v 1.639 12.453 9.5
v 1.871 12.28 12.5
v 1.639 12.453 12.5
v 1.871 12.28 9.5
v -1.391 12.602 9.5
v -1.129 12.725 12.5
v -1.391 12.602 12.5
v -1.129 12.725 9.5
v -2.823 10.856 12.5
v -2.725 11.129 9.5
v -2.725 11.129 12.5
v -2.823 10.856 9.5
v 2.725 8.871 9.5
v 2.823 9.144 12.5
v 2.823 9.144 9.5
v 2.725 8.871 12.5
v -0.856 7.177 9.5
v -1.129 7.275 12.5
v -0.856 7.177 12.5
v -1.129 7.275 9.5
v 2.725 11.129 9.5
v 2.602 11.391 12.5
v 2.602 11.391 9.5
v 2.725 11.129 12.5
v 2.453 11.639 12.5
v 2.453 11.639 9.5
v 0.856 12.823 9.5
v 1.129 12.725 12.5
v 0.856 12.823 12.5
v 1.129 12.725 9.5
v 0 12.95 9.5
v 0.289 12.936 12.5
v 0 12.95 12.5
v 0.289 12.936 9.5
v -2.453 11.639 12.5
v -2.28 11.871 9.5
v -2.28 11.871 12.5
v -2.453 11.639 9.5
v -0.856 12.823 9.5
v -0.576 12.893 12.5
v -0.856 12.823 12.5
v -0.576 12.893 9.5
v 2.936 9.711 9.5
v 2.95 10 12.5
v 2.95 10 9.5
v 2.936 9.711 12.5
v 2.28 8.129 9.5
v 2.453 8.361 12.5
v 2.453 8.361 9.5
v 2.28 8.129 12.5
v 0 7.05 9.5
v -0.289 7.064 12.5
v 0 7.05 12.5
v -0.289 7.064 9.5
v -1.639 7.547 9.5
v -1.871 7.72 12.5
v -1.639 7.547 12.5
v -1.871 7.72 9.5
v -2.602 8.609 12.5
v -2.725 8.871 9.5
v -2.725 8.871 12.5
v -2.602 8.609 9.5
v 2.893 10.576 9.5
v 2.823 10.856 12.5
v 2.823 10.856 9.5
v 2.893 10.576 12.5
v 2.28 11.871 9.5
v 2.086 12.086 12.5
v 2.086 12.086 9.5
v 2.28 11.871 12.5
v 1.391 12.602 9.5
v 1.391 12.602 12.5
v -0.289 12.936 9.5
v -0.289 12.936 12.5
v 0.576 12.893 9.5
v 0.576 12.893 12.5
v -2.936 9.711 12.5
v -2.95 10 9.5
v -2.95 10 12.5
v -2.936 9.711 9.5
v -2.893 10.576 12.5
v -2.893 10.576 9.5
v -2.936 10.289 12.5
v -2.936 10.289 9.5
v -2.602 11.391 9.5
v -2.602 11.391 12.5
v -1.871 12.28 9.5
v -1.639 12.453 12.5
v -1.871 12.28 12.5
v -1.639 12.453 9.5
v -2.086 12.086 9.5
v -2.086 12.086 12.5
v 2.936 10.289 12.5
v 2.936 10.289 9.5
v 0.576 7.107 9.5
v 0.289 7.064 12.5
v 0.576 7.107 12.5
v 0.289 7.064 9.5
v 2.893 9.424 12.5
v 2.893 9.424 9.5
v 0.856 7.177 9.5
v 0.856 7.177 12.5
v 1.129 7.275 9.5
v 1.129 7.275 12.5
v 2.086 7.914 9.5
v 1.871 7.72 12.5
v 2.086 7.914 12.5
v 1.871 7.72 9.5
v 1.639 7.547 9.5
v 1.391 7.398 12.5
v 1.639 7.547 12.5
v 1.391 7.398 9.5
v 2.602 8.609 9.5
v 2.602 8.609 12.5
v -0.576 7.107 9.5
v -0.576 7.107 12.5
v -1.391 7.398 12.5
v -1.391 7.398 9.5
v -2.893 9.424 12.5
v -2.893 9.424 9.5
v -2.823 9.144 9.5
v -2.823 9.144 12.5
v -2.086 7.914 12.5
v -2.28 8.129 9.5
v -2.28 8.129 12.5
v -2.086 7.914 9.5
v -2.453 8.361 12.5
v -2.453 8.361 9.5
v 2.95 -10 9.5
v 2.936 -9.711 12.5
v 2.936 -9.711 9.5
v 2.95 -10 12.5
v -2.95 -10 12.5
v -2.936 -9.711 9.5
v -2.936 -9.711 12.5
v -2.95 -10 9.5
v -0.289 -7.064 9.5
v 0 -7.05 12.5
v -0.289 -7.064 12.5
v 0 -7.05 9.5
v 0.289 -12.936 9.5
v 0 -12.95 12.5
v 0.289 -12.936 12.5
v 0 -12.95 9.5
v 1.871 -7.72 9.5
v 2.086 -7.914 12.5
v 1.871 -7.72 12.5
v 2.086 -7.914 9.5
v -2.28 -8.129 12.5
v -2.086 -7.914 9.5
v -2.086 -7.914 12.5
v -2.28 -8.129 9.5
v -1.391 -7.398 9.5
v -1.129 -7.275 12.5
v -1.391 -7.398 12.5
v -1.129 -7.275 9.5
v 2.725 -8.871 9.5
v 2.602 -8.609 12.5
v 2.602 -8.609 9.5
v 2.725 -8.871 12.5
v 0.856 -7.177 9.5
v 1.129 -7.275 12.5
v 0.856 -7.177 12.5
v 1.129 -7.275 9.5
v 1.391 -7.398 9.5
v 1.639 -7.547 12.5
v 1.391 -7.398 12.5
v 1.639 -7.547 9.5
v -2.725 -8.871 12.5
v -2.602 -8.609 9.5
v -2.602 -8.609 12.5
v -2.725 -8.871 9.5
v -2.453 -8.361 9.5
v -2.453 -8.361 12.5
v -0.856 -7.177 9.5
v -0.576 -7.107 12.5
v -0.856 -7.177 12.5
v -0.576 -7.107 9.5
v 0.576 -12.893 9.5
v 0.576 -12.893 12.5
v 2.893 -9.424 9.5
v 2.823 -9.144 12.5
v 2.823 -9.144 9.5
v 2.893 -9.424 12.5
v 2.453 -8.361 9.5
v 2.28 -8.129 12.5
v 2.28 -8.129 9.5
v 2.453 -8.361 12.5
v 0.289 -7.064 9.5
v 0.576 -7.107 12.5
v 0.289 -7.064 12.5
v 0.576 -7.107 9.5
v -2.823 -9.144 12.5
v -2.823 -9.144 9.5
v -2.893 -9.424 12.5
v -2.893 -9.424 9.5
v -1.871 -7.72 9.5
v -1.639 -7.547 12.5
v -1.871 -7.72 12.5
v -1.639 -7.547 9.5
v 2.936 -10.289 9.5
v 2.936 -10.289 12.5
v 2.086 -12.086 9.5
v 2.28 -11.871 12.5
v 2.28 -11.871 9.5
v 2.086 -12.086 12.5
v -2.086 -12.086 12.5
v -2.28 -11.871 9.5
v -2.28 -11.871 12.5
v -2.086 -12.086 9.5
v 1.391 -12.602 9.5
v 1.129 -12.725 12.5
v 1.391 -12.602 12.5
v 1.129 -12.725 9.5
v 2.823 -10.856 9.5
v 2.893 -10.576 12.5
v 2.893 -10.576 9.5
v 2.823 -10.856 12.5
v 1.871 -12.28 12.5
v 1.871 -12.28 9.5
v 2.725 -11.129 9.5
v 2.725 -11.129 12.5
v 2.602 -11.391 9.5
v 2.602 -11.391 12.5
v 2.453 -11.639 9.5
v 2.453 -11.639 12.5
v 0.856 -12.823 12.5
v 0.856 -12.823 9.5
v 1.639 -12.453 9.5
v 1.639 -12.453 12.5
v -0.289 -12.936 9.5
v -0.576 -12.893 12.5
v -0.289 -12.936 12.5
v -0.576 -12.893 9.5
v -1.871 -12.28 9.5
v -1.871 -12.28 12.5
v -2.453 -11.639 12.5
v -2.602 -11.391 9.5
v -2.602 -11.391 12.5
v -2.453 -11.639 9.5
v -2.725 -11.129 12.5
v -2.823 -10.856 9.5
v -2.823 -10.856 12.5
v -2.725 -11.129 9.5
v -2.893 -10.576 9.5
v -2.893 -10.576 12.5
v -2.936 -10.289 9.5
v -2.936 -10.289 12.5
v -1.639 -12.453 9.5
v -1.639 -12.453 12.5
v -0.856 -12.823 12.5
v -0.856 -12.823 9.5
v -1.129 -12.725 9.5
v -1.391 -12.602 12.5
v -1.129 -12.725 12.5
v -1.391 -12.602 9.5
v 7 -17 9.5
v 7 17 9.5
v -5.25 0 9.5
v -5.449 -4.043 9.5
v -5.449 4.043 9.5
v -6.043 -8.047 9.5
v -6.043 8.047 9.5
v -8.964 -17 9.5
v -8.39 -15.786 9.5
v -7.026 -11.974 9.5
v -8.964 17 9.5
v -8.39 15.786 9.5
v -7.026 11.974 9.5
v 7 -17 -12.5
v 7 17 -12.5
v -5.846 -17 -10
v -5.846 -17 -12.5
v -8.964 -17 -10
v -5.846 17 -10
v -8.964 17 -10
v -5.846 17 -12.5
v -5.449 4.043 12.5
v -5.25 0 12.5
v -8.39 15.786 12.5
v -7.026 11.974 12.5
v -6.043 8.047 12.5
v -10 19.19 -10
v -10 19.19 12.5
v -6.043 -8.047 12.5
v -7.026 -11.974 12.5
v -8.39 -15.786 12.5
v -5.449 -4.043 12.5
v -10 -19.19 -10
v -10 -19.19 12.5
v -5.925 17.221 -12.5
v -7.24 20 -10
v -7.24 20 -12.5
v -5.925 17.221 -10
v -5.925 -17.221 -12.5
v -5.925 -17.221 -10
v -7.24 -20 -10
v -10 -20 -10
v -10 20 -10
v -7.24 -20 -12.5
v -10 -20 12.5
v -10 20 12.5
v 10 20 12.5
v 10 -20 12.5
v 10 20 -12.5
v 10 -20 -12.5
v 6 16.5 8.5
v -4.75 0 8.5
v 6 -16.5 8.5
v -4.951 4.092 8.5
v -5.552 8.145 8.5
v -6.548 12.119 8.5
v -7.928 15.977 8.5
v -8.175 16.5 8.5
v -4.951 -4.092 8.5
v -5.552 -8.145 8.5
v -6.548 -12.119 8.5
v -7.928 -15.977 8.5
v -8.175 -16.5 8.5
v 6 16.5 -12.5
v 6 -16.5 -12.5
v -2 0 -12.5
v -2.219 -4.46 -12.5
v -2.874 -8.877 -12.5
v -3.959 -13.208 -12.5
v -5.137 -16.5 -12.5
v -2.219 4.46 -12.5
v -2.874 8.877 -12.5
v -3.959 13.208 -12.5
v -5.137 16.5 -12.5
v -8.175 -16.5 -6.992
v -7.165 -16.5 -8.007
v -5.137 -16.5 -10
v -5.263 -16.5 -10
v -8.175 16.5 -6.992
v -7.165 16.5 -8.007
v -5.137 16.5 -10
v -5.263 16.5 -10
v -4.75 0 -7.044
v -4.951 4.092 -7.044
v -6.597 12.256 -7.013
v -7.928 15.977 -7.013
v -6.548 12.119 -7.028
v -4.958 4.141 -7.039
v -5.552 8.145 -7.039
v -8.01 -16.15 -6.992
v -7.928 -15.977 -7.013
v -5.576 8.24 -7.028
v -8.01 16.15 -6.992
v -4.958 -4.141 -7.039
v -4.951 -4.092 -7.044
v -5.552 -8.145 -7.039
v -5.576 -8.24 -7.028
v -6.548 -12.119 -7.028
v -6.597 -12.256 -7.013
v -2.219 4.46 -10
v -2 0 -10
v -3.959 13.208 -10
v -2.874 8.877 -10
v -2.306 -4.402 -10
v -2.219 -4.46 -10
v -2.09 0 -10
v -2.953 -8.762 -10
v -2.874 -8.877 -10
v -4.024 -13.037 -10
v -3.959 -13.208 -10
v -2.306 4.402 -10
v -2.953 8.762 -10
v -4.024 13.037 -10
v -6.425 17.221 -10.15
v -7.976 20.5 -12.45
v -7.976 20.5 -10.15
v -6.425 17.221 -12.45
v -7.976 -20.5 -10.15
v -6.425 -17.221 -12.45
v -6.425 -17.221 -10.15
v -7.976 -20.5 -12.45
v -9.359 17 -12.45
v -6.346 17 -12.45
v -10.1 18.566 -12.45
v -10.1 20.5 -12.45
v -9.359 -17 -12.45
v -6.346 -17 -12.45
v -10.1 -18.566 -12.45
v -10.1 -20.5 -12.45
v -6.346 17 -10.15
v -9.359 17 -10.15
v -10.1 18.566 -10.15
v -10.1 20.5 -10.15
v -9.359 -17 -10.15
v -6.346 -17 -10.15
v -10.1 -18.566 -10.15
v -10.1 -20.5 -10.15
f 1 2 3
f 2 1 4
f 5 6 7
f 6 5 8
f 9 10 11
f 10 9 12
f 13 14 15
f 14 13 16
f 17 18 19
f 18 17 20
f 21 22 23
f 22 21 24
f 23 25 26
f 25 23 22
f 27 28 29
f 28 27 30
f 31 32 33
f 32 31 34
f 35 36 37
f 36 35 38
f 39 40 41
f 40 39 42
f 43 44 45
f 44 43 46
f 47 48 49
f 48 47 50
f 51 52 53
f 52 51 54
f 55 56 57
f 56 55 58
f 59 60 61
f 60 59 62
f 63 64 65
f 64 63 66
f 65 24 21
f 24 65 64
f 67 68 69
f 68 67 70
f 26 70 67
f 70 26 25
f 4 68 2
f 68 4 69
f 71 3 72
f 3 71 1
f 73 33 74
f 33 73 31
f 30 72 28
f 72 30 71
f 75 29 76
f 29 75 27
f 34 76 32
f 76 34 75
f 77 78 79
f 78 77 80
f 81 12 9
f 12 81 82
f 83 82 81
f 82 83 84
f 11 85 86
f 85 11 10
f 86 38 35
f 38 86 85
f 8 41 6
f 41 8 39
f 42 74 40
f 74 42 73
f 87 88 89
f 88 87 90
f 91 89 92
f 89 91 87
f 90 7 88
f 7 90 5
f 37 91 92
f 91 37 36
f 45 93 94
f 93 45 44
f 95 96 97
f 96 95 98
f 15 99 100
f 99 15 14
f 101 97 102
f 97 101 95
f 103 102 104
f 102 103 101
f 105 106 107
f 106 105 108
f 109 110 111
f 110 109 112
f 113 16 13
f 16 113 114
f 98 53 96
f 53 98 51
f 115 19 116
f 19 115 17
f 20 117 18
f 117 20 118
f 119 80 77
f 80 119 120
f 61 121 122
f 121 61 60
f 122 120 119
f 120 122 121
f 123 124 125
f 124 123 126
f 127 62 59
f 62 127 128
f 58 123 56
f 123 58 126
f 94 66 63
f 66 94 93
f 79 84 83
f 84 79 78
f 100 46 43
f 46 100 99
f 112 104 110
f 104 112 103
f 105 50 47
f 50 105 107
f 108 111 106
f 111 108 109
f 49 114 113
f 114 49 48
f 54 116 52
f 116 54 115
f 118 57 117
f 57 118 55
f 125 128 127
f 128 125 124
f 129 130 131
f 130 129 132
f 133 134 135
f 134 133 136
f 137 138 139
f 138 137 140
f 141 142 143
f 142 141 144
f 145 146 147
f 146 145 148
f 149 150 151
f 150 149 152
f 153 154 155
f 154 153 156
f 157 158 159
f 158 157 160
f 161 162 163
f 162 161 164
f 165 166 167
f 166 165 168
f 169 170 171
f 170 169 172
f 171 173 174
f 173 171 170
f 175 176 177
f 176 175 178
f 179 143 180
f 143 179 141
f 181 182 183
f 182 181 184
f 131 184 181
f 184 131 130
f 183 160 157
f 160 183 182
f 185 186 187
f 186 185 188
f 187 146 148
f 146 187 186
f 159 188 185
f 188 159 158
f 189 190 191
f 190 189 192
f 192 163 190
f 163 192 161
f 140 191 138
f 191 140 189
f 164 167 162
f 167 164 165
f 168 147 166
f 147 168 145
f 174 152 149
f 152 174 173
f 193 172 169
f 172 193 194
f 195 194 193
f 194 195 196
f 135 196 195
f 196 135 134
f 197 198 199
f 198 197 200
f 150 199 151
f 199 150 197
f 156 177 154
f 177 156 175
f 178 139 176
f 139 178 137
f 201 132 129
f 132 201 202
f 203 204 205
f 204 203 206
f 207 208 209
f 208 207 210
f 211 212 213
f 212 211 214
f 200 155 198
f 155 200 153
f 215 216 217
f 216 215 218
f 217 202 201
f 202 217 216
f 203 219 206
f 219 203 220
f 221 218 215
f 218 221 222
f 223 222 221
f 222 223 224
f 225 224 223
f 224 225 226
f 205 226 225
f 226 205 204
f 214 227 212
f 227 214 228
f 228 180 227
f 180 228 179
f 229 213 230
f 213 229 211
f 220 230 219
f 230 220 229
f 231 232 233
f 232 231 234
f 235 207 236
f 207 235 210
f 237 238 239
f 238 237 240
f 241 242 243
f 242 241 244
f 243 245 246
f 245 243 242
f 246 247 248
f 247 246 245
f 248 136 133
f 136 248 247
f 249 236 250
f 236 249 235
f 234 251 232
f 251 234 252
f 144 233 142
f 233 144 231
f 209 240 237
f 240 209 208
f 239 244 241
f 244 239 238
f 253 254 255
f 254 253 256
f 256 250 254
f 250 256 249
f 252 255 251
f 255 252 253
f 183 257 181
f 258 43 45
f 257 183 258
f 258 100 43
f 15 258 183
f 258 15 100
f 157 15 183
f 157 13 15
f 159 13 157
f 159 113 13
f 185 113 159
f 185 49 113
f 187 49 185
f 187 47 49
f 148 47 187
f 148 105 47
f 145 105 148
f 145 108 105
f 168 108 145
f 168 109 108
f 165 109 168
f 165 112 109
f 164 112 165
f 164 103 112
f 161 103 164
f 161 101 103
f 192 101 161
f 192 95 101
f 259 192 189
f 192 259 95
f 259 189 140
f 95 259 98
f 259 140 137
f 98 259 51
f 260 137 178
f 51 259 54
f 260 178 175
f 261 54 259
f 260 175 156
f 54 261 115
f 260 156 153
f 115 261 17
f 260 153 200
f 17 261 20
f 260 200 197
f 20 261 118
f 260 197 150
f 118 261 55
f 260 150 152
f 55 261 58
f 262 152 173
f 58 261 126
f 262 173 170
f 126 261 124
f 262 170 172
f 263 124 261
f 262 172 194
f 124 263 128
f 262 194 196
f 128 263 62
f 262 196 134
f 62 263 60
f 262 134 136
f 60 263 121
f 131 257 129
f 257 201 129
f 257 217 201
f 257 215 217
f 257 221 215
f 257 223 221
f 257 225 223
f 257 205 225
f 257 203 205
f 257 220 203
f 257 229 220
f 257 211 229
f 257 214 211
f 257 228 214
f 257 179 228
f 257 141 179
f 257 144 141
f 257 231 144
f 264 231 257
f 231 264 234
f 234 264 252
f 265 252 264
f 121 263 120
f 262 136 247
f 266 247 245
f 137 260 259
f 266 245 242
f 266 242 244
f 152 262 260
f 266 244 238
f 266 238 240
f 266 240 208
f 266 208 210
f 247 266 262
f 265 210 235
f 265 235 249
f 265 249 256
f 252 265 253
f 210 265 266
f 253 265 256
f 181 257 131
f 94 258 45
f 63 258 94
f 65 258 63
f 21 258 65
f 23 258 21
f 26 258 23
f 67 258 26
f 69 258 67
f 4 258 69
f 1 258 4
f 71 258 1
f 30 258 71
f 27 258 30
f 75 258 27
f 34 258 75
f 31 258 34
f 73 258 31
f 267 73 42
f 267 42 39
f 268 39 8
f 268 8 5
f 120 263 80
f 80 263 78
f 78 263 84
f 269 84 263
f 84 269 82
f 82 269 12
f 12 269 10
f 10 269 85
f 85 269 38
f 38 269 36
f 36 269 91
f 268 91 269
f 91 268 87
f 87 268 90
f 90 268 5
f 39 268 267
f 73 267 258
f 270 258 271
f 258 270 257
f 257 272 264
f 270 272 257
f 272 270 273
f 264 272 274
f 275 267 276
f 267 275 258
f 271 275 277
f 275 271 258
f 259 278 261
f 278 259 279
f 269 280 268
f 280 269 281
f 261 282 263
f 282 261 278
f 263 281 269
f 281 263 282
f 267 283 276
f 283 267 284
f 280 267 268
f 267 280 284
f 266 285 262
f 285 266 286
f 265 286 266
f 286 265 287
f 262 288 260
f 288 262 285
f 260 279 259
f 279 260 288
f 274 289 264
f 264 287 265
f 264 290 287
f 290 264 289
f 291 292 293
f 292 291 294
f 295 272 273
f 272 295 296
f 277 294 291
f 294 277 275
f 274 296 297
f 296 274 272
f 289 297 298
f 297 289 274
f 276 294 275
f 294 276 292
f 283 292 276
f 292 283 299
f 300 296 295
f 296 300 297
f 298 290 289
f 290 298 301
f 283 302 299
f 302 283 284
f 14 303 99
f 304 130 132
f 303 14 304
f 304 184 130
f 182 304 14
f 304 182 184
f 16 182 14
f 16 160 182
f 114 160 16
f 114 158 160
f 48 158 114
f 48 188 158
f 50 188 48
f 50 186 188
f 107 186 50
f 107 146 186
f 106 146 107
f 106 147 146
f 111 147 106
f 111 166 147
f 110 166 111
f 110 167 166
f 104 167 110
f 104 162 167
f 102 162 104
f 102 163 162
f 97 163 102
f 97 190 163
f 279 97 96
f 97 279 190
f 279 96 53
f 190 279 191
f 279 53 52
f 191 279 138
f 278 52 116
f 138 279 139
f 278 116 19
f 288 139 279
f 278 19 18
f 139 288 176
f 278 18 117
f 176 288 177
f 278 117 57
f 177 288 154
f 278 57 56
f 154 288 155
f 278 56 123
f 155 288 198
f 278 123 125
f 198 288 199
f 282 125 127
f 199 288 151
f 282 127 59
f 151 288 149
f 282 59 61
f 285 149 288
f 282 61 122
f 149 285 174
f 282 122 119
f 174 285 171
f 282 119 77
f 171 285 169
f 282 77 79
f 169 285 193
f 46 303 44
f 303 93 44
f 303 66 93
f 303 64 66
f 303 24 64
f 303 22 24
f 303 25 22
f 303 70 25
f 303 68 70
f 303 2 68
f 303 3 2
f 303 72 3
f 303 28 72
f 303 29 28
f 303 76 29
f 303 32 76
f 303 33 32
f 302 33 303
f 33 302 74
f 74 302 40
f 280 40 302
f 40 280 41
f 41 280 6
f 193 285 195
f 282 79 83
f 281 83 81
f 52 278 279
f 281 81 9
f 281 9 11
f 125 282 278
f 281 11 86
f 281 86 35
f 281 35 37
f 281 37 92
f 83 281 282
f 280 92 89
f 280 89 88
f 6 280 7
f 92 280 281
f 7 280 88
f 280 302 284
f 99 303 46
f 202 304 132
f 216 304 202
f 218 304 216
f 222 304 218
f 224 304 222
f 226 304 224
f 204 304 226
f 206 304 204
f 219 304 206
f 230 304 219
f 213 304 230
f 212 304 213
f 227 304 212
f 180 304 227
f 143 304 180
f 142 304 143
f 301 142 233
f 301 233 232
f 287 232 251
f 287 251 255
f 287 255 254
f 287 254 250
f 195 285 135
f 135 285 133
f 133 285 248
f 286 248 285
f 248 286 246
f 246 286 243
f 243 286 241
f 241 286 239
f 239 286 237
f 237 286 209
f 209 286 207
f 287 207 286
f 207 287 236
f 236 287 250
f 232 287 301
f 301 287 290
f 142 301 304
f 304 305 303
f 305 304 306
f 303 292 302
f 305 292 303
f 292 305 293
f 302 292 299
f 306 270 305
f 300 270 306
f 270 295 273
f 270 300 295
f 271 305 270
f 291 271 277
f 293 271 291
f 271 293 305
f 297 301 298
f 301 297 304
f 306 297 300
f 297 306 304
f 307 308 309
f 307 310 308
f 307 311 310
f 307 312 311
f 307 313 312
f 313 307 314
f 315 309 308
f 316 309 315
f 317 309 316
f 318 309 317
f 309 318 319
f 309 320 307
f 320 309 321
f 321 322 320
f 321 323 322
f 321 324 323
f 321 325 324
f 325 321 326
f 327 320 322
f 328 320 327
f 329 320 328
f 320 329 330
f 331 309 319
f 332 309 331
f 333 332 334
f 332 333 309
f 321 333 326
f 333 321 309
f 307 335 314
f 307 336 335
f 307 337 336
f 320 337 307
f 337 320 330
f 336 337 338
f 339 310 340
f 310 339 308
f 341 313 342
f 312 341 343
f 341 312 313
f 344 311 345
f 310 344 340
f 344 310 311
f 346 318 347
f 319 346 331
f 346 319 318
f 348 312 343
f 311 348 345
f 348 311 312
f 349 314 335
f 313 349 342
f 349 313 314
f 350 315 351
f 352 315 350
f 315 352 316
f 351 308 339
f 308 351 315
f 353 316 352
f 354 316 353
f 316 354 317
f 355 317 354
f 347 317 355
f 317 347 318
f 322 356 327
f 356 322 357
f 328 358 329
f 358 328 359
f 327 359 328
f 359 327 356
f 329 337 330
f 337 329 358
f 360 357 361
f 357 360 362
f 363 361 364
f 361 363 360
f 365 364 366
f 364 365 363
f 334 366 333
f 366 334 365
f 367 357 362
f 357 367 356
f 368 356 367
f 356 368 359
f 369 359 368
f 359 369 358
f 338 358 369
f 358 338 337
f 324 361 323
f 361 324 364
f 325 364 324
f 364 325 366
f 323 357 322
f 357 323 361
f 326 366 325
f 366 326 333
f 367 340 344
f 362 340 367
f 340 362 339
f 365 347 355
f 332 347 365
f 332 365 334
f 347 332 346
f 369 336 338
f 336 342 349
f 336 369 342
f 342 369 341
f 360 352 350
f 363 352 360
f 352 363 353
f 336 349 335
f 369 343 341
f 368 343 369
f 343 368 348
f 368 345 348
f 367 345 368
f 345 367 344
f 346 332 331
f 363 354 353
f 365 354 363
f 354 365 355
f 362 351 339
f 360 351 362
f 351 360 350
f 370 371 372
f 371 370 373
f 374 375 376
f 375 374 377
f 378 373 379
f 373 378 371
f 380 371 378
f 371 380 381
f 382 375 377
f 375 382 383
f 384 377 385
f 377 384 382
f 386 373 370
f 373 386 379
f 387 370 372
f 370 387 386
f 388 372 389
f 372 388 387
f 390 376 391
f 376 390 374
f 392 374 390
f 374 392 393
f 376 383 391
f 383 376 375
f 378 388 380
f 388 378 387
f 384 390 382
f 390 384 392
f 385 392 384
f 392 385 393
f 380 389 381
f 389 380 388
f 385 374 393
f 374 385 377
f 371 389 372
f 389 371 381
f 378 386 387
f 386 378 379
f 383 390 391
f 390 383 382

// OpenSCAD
// file: nut_banan.scad
//nut();

module nut() {
    color("pink")
difference() {
    cylinder(d=12, h=2, center=true, $fn=6);
    cylinder(d=5.5, h=3, center=true, $fn=64);
    }
}
// main file
include <nut_banan.scad>


$fn = 64;
diam_hole = 5.4 + 0.5;

//support();

banan();
mini_support_link();
//mini_support();


module mini_support_link(); { 
difference() {
    translate ([-90/2-3, 0, -11.3])
    ring();
    translate ([-90/2-10.1, 0, 0])
    cube ([90, 90, 90], center = true);
    translate([-1, -20/2-20-0.5, -4])    
    cube ([20, 20,20], center = true);

    mirror([0, 1, 0])
    translate([-1, -20/2-20-0.5, -4])    
    cube ([20, 20,20], center = true);
    
    translate([-20/2-0.5, 0, -4])    
    cube ([20, 40-6, 20], center = true);
    }
}
    

module ring() {
difference () {
cylinder(d = 90, h = 2.3, center = true);
cylinder(d = 90-5.5, h = 5, center = true); 
}
}

module mini_support() {
    translate ([-8.5, 18.5, -11.5])
    rotate ([0, 0, 25])
    cube ([3, 3, 2.5], center=true);
    
    mirror ([0, 1, 0])
    translate ([-8.5, 18.5, -11.5])
    rotate ([0, 0, 25])
    cube ([3, 3, 2.5], center=true);
}
//difference() {
//    banan();
//    translate([0, -40/2, 0])
//    cube([20+1, 40+1, 25+1], center = true);
//}


module support() {
    difference() {
    translate([-2, 0, -2])
    cube([20-3-1, 40-6-1, 25-3-1], center = true);
    translate ([-85/2-4, 0, 0])
    cylinder(d = 80+5/2+1, h = 150, center=true);
   
    translate ([-85/2-5, 0, -15])
    cylinder(d = 90+1, h = 10, center = true);
        
    translate([-47, 0, 15-0.1])
     cylinder (d1=90, d2=0, h=50, center = true);
  }       
}



//translate([0, 0, -25/2-0.5])
//banan();
//
//translate([0,20/2,-5])
//rotate([0,0,90])
//nut();
//
//translate([0,-20/2,-5])
//rotate([0,0,90])
//nut();
//color("red")
//translate([-3, 0, 0])
//cube([20,40-6,25-6], center = true);

module banan() {
    difference() {
        base();
        holes_banan();
    }
    color("red")
    support();
}
    
//difference() {    
//color ("red")
//support();
//translate([-47, 0, 15-0.1])
//cylinder (d1=90, d2=0, h=50, center = true);
//}
//    }

module base() {
    cube([20, 40, 25], center = true);
}


module holes_banan() {
    translate([0, 20/2, 0])
    cylinder(d=diam_hole, h = 50, center = true);

    translate([0, -20/2, 0])
    cylinder(d=diam_hole, h = 50, center = true);
    
    translate([-3, 0, -3])
    cube([20,40-6,25], center = true);
    
    translate ([-85/2-4, 0, 0])
    cylinder(d = 80 + 5/2, h = 150, center=true);
    
    translate ([-85/2-5, 0, -15])
    cylinder(d = 90, h = 10, center = true);

}
